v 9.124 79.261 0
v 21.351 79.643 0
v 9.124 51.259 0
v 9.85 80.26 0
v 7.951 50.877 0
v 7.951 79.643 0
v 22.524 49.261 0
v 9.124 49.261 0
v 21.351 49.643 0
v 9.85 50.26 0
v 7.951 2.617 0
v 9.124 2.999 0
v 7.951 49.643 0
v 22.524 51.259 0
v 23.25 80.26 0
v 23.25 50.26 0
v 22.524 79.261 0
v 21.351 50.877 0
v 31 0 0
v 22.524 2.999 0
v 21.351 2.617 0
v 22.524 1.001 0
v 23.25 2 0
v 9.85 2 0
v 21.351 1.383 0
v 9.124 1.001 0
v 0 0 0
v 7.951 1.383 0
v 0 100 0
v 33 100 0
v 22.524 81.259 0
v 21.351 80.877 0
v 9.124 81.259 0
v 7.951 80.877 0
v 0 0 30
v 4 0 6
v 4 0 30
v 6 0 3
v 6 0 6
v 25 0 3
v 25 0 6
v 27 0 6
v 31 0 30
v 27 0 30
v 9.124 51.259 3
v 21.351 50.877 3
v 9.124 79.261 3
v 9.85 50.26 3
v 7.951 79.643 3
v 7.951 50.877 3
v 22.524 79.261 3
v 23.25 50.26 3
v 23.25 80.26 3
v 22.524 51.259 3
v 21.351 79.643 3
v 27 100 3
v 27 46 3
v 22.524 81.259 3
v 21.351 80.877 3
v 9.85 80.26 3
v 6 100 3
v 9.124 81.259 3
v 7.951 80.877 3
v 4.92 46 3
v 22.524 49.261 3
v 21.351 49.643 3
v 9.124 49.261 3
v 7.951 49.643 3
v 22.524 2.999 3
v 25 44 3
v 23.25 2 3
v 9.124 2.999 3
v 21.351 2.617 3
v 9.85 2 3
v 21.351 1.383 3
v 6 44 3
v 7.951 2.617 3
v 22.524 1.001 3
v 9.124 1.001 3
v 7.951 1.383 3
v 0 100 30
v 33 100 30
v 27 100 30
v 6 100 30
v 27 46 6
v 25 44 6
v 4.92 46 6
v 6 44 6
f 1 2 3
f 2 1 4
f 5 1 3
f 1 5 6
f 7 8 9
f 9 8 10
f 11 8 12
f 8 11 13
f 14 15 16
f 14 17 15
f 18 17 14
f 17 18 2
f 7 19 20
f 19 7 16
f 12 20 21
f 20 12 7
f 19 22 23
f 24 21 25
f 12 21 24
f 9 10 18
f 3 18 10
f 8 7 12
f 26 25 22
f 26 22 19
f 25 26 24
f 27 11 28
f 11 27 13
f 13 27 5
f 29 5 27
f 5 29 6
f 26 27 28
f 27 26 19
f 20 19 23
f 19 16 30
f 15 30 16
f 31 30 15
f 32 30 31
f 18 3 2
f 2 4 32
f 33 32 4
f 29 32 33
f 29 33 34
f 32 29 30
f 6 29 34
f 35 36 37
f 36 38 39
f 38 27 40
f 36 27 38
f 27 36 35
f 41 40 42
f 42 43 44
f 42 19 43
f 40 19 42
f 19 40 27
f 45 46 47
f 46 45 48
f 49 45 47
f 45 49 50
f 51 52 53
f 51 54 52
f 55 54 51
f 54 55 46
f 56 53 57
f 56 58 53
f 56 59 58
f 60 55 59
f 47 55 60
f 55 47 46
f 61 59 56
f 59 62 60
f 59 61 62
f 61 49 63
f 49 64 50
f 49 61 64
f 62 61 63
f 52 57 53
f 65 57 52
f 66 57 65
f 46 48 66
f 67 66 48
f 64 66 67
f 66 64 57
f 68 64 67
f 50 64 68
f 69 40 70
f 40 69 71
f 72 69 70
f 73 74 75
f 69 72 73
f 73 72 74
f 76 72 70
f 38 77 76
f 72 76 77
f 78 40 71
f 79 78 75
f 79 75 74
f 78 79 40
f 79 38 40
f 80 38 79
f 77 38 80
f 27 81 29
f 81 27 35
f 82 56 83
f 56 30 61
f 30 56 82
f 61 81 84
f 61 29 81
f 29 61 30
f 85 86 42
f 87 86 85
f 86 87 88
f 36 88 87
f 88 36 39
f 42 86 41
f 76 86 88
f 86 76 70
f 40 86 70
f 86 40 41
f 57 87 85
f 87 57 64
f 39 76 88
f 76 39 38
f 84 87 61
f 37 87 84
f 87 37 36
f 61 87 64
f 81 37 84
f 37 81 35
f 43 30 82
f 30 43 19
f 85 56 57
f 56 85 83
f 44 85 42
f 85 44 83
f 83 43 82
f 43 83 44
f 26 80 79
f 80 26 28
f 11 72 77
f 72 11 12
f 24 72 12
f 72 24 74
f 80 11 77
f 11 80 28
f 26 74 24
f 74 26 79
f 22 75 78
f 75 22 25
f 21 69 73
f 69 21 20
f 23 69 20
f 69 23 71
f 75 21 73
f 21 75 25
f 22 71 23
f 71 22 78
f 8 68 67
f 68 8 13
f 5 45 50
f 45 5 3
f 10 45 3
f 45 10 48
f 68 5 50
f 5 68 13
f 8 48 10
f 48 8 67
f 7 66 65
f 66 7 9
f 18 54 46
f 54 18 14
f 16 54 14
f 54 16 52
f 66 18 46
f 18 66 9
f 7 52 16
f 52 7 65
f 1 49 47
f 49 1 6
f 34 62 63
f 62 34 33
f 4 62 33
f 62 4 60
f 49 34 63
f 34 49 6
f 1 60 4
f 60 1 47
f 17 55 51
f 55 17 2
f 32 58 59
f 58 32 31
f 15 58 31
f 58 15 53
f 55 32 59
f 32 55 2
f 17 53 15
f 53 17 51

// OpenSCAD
pico_w_width = 21;
pico_w_length = 51;
margin = 1;

side_panel_height = 30;
side_panel_thickness = 4;

height = 3;
width = pico_w_width + margin * 2 + side_panel_thickness * 2;
length = 100;

base = [
    [0, 0],
    [0, length],
    [width, length],
    [width, 0]
];

board_support_thickness = 2;
board_support = [
    [0, 0],
    [0, pico_w_length - 5],
    [width, pico_w_length - 5],
    [width, 0],
    [width - side_panel_thickness - board_support_thickness, 0],
    [width - side_panel_thickness - board_support_thickness, pico_w_length - board_support_thickness - 5],
    [side_panel_thickness + board_support_thickness, pico_w_length - board_support_thickness - 5],
    [side_panel_thickness + board_support_thickness, 0]
];


side_panel = [
    [0, 0],
    [0, length],    
    [side_panel_thickness + board_support_thickness, length],
    [side_panel_thickness, 0]
];

delta_length = 42;
delta_base = [
    [0, 0],
    [0, delta_length],
    [width / 2, delta_length],
    [width / 2, 0]
];


module hole_cylinder() {
    cylinder(h = side_panel_height, r = 2.1/2, center = true);
}
holes_x_offset = side_panel_thickness + (21 - 11.4) / 2;

difference() {
    union() {
        linear_extrude(height = height) {
            polygon(base);
        }
        linear_extrude(height = height * 2) {
            polygon(board_support);
        }
        // left side panel
        linear_extrude(height = side_panel_height) {
            polygon(side_panel);
        }
        // right side panel
        translate([width - side_panel_thickness, 0, 0])
        linear_extrude(height = side_panel_height) {
            polygon(side_panel);
        }
    }
    
    translate([holes_x_offset, 2, 0])
        hole_cylinder();
    translate([width - holes_x_offset, 2, 0])
        hole_cylinder();
    
    translate([holes_x_offset, 2 + 48.26, 0])
        hole_cylinder();
    translate([width - holes_x_offset, 2 + 48.26, 0])
        hole_cylinder();
    
    translate([holes_x_offset, 2 + 48.26 + 30, 0])
        hole_cylinder();
    translate([width - holes_x_offset, 2 + 48.26 + 30, 0])
        hole_cylinder();
}
